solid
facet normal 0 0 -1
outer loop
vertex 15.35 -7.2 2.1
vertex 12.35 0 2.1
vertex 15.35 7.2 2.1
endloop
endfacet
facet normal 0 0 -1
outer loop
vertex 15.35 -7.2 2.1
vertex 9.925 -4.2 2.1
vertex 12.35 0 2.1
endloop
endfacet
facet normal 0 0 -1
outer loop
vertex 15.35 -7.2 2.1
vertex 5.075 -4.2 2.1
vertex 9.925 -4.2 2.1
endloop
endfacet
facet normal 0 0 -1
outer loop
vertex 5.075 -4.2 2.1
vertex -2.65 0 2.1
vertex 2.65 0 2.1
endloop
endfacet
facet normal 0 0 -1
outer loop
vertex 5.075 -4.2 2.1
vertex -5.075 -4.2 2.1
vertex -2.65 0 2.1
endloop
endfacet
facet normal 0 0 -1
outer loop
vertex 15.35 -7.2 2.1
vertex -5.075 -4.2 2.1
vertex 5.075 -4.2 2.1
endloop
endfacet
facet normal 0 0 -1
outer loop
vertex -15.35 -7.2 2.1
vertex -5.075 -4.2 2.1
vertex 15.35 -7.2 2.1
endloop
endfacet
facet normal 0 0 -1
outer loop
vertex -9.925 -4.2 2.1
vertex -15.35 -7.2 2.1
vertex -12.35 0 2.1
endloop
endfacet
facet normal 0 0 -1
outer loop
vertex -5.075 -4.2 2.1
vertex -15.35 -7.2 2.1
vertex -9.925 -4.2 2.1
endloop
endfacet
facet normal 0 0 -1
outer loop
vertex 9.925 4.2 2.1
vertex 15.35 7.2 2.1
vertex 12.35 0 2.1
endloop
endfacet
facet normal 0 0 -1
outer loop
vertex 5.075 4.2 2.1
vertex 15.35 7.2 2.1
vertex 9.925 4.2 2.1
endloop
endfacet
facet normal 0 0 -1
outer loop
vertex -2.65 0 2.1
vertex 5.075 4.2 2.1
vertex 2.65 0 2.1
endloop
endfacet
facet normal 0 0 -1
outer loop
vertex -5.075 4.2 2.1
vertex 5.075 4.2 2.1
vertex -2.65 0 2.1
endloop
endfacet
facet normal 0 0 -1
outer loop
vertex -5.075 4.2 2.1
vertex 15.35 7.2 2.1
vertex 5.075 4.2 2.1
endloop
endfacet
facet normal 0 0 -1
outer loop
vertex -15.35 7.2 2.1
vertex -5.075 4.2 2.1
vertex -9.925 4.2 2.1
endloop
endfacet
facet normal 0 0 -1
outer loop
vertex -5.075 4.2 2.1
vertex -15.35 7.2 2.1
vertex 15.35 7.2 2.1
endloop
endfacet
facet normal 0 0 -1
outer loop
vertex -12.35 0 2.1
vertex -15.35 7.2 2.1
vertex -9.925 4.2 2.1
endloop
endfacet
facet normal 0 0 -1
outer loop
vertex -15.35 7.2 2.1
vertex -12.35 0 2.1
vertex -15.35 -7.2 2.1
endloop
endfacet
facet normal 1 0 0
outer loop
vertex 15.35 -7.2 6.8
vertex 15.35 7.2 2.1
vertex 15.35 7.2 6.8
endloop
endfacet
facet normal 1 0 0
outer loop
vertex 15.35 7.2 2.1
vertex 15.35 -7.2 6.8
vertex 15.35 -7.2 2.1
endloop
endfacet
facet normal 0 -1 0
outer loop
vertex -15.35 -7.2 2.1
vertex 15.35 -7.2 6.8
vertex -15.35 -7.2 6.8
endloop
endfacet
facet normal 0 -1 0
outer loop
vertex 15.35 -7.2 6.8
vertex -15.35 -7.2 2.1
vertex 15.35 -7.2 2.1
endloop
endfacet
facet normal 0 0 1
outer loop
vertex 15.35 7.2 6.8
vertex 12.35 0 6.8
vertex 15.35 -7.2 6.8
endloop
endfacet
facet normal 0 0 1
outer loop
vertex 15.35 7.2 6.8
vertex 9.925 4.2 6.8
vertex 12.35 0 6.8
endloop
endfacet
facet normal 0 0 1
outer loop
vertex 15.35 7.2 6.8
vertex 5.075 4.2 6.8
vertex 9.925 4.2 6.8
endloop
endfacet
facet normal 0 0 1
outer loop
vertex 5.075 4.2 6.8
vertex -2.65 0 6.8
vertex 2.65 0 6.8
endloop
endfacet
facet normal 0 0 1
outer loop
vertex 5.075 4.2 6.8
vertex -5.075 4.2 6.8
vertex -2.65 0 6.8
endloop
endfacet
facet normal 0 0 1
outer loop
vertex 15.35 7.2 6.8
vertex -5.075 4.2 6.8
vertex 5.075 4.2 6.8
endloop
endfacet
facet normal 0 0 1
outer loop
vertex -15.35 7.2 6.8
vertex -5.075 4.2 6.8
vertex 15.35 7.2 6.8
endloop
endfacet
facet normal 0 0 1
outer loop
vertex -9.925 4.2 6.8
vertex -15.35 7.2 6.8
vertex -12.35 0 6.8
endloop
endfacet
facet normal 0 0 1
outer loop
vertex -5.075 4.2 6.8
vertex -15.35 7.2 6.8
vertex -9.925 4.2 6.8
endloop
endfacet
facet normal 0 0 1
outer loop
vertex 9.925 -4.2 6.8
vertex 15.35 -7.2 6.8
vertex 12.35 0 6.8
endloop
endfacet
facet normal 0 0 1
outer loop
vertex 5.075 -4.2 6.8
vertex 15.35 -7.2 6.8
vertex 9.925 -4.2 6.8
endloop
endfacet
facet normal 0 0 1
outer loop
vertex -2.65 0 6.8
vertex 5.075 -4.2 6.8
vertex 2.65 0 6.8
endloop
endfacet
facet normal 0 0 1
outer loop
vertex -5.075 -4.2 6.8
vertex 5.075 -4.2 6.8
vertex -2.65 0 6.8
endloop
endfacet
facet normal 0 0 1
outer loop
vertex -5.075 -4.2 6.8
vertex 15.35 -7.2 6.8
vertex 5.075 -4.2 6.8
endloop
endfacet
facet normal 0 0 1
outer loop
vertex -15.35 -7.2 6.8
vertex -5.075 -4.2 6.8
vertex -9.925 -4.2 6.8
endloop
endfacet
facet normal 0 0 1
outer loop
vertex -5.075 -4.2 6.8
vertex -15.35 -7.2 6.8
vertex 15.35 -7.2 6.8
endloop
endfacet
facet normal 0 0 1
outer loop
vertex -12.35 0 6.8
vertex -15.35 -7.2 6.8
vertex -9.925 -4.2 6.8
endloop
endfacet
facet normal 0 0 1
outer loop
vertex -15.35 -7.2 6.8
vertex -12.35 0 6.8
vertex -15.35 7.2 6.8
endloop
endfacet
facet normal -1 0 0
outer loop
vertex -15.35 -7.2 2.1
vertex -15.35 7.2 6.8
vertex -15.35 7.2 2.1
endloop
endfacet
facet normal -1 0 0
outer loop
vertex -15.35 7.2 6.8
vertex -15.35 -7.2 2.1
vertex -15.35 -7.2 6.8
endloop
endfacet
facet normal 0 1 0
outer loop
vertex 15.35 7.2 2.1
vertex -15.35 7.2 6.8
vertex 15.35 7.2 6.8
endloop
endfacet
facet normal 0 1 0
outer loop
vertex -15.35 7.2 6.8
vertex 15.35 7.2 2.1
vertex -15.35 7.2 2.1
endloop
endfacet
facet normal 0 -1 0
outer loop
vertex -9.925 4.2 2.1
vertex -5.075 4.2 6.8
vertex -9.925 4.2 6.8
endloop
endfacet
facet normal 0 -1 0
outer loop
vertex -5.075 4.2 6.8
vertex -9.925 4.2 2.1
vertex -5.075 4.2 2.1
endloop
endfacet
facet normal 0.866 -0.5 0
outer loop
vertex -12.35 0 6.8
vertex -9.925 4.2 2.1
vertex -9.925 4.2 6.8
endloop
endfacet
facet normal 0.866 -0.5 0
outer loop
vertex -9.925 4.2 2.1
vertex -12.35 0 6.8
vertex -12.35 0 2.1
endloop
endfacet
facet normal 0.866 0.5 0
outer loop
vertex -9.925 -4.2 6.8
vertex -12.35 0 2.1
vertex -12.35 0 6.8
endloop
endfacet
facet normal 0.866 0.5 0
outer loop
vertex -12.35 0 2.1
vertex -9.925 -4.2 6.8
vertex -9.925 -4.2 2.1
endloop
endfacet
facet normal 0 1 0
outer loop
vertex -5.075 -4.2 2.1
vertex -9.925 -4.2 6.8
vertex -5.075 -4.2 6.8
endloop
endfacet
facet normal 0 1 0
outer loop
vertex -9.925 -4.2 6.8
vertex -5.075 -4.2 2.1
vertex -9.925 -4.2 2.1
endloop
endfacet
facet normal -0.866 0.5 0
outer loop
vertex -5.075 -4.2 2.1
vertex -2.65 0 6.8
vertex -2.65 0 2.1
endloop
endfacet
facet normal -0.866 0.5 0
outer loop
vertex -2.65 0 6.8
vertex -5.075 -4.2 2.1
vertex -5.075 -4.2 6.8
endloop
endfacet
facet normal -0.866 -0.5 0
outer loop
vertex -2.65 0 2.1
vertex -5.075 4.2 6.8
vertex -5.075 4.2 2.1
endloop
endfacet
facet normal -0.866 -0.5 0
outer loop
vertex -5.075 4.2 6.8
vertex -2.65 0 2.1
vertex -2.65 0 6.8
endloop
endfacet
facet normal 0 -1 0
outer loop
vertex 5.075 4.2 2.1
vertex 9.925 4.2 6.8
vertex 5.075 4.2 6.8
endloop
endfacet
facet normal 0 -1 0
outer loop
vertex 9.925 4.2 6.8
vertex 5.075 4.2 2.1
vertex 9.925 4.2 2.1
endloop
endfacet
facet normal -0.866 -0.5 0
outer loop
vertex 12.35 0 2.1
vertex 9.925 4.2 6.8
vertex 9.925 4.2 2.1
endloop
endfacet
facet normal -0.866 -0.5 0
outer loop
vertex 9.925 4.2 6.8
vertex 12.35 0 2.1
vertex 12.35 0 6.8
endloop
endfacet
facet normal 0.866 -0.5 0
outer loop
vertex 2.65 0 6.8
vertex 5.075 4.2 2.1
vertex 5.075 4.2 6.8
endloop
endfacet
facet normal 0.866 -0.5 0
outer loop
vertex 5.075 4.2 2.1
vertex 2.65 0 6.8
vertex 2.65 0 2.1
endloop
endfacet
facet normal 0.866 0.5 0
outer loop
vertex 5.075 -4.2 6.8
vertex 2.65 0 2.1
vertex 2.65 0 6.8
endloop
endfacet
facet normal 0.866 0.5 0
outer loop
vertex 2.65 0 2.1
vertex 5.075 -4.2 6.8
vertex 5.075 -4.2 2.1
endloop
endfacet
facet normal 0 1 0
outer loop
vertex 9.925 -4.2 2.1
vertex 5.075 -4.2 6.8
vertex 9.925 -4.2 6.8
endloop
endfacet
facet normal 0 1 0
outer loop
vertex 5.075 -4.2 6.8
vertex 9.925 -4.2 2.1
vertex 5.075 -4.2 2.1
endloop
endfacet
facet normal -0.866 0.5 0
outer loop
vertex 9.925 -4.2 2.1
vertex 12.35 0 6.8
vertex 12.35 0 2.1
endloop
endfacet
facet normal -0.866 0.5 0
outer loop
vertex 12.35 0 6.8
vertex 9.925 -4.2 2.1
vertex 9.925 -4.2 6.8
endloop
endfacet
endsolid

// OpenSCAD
// body nut_frame
difference() {
  union() {
    // body nut_frame (nut_frame)
    multmatrix([[1, 0, 0, 0], [0, 1, 0, 0], [0, 0, 1, 2.1], [0, 0, 0, 1]]) linear_extrude(height=4.7) polygon(points=[[-15.349742, -7.2], [15.349742, -7.2], [15.349742, 7.2], [-15.349742, 7.2]]);
  }
  // cut frame_trap_0 (nut_trap)
  multmatrix([[1, 0, 0, -7.5], [0, 1, 0, 0], [0, 0, 1, 1.1], [0, 0, 0, 1]]) linear_extrude(height=6.7) polygon(points=[[-4.849742, 0], [-2.424871, -4.2], [2.424871, -4.2], [4.849742, 0], [2.424871, 4.2], [-2.424871, 4.2]]);
  // cut frame_trap_1 (nut_trap)
  multmatrix([[1, 0, 0, 7.5], [0, 1, 0, 0], [0, 0, 1, 1.1], [0, 0, 0, 1]]) linear_extrude(height=6.7) polygon(points=[[-4.849742, 0], [-2.424871, -4.2], [2.424871, -4.2], [4.849742, 0], [2.424871, 4.2], [-2.424871, 4.2]]);
}
